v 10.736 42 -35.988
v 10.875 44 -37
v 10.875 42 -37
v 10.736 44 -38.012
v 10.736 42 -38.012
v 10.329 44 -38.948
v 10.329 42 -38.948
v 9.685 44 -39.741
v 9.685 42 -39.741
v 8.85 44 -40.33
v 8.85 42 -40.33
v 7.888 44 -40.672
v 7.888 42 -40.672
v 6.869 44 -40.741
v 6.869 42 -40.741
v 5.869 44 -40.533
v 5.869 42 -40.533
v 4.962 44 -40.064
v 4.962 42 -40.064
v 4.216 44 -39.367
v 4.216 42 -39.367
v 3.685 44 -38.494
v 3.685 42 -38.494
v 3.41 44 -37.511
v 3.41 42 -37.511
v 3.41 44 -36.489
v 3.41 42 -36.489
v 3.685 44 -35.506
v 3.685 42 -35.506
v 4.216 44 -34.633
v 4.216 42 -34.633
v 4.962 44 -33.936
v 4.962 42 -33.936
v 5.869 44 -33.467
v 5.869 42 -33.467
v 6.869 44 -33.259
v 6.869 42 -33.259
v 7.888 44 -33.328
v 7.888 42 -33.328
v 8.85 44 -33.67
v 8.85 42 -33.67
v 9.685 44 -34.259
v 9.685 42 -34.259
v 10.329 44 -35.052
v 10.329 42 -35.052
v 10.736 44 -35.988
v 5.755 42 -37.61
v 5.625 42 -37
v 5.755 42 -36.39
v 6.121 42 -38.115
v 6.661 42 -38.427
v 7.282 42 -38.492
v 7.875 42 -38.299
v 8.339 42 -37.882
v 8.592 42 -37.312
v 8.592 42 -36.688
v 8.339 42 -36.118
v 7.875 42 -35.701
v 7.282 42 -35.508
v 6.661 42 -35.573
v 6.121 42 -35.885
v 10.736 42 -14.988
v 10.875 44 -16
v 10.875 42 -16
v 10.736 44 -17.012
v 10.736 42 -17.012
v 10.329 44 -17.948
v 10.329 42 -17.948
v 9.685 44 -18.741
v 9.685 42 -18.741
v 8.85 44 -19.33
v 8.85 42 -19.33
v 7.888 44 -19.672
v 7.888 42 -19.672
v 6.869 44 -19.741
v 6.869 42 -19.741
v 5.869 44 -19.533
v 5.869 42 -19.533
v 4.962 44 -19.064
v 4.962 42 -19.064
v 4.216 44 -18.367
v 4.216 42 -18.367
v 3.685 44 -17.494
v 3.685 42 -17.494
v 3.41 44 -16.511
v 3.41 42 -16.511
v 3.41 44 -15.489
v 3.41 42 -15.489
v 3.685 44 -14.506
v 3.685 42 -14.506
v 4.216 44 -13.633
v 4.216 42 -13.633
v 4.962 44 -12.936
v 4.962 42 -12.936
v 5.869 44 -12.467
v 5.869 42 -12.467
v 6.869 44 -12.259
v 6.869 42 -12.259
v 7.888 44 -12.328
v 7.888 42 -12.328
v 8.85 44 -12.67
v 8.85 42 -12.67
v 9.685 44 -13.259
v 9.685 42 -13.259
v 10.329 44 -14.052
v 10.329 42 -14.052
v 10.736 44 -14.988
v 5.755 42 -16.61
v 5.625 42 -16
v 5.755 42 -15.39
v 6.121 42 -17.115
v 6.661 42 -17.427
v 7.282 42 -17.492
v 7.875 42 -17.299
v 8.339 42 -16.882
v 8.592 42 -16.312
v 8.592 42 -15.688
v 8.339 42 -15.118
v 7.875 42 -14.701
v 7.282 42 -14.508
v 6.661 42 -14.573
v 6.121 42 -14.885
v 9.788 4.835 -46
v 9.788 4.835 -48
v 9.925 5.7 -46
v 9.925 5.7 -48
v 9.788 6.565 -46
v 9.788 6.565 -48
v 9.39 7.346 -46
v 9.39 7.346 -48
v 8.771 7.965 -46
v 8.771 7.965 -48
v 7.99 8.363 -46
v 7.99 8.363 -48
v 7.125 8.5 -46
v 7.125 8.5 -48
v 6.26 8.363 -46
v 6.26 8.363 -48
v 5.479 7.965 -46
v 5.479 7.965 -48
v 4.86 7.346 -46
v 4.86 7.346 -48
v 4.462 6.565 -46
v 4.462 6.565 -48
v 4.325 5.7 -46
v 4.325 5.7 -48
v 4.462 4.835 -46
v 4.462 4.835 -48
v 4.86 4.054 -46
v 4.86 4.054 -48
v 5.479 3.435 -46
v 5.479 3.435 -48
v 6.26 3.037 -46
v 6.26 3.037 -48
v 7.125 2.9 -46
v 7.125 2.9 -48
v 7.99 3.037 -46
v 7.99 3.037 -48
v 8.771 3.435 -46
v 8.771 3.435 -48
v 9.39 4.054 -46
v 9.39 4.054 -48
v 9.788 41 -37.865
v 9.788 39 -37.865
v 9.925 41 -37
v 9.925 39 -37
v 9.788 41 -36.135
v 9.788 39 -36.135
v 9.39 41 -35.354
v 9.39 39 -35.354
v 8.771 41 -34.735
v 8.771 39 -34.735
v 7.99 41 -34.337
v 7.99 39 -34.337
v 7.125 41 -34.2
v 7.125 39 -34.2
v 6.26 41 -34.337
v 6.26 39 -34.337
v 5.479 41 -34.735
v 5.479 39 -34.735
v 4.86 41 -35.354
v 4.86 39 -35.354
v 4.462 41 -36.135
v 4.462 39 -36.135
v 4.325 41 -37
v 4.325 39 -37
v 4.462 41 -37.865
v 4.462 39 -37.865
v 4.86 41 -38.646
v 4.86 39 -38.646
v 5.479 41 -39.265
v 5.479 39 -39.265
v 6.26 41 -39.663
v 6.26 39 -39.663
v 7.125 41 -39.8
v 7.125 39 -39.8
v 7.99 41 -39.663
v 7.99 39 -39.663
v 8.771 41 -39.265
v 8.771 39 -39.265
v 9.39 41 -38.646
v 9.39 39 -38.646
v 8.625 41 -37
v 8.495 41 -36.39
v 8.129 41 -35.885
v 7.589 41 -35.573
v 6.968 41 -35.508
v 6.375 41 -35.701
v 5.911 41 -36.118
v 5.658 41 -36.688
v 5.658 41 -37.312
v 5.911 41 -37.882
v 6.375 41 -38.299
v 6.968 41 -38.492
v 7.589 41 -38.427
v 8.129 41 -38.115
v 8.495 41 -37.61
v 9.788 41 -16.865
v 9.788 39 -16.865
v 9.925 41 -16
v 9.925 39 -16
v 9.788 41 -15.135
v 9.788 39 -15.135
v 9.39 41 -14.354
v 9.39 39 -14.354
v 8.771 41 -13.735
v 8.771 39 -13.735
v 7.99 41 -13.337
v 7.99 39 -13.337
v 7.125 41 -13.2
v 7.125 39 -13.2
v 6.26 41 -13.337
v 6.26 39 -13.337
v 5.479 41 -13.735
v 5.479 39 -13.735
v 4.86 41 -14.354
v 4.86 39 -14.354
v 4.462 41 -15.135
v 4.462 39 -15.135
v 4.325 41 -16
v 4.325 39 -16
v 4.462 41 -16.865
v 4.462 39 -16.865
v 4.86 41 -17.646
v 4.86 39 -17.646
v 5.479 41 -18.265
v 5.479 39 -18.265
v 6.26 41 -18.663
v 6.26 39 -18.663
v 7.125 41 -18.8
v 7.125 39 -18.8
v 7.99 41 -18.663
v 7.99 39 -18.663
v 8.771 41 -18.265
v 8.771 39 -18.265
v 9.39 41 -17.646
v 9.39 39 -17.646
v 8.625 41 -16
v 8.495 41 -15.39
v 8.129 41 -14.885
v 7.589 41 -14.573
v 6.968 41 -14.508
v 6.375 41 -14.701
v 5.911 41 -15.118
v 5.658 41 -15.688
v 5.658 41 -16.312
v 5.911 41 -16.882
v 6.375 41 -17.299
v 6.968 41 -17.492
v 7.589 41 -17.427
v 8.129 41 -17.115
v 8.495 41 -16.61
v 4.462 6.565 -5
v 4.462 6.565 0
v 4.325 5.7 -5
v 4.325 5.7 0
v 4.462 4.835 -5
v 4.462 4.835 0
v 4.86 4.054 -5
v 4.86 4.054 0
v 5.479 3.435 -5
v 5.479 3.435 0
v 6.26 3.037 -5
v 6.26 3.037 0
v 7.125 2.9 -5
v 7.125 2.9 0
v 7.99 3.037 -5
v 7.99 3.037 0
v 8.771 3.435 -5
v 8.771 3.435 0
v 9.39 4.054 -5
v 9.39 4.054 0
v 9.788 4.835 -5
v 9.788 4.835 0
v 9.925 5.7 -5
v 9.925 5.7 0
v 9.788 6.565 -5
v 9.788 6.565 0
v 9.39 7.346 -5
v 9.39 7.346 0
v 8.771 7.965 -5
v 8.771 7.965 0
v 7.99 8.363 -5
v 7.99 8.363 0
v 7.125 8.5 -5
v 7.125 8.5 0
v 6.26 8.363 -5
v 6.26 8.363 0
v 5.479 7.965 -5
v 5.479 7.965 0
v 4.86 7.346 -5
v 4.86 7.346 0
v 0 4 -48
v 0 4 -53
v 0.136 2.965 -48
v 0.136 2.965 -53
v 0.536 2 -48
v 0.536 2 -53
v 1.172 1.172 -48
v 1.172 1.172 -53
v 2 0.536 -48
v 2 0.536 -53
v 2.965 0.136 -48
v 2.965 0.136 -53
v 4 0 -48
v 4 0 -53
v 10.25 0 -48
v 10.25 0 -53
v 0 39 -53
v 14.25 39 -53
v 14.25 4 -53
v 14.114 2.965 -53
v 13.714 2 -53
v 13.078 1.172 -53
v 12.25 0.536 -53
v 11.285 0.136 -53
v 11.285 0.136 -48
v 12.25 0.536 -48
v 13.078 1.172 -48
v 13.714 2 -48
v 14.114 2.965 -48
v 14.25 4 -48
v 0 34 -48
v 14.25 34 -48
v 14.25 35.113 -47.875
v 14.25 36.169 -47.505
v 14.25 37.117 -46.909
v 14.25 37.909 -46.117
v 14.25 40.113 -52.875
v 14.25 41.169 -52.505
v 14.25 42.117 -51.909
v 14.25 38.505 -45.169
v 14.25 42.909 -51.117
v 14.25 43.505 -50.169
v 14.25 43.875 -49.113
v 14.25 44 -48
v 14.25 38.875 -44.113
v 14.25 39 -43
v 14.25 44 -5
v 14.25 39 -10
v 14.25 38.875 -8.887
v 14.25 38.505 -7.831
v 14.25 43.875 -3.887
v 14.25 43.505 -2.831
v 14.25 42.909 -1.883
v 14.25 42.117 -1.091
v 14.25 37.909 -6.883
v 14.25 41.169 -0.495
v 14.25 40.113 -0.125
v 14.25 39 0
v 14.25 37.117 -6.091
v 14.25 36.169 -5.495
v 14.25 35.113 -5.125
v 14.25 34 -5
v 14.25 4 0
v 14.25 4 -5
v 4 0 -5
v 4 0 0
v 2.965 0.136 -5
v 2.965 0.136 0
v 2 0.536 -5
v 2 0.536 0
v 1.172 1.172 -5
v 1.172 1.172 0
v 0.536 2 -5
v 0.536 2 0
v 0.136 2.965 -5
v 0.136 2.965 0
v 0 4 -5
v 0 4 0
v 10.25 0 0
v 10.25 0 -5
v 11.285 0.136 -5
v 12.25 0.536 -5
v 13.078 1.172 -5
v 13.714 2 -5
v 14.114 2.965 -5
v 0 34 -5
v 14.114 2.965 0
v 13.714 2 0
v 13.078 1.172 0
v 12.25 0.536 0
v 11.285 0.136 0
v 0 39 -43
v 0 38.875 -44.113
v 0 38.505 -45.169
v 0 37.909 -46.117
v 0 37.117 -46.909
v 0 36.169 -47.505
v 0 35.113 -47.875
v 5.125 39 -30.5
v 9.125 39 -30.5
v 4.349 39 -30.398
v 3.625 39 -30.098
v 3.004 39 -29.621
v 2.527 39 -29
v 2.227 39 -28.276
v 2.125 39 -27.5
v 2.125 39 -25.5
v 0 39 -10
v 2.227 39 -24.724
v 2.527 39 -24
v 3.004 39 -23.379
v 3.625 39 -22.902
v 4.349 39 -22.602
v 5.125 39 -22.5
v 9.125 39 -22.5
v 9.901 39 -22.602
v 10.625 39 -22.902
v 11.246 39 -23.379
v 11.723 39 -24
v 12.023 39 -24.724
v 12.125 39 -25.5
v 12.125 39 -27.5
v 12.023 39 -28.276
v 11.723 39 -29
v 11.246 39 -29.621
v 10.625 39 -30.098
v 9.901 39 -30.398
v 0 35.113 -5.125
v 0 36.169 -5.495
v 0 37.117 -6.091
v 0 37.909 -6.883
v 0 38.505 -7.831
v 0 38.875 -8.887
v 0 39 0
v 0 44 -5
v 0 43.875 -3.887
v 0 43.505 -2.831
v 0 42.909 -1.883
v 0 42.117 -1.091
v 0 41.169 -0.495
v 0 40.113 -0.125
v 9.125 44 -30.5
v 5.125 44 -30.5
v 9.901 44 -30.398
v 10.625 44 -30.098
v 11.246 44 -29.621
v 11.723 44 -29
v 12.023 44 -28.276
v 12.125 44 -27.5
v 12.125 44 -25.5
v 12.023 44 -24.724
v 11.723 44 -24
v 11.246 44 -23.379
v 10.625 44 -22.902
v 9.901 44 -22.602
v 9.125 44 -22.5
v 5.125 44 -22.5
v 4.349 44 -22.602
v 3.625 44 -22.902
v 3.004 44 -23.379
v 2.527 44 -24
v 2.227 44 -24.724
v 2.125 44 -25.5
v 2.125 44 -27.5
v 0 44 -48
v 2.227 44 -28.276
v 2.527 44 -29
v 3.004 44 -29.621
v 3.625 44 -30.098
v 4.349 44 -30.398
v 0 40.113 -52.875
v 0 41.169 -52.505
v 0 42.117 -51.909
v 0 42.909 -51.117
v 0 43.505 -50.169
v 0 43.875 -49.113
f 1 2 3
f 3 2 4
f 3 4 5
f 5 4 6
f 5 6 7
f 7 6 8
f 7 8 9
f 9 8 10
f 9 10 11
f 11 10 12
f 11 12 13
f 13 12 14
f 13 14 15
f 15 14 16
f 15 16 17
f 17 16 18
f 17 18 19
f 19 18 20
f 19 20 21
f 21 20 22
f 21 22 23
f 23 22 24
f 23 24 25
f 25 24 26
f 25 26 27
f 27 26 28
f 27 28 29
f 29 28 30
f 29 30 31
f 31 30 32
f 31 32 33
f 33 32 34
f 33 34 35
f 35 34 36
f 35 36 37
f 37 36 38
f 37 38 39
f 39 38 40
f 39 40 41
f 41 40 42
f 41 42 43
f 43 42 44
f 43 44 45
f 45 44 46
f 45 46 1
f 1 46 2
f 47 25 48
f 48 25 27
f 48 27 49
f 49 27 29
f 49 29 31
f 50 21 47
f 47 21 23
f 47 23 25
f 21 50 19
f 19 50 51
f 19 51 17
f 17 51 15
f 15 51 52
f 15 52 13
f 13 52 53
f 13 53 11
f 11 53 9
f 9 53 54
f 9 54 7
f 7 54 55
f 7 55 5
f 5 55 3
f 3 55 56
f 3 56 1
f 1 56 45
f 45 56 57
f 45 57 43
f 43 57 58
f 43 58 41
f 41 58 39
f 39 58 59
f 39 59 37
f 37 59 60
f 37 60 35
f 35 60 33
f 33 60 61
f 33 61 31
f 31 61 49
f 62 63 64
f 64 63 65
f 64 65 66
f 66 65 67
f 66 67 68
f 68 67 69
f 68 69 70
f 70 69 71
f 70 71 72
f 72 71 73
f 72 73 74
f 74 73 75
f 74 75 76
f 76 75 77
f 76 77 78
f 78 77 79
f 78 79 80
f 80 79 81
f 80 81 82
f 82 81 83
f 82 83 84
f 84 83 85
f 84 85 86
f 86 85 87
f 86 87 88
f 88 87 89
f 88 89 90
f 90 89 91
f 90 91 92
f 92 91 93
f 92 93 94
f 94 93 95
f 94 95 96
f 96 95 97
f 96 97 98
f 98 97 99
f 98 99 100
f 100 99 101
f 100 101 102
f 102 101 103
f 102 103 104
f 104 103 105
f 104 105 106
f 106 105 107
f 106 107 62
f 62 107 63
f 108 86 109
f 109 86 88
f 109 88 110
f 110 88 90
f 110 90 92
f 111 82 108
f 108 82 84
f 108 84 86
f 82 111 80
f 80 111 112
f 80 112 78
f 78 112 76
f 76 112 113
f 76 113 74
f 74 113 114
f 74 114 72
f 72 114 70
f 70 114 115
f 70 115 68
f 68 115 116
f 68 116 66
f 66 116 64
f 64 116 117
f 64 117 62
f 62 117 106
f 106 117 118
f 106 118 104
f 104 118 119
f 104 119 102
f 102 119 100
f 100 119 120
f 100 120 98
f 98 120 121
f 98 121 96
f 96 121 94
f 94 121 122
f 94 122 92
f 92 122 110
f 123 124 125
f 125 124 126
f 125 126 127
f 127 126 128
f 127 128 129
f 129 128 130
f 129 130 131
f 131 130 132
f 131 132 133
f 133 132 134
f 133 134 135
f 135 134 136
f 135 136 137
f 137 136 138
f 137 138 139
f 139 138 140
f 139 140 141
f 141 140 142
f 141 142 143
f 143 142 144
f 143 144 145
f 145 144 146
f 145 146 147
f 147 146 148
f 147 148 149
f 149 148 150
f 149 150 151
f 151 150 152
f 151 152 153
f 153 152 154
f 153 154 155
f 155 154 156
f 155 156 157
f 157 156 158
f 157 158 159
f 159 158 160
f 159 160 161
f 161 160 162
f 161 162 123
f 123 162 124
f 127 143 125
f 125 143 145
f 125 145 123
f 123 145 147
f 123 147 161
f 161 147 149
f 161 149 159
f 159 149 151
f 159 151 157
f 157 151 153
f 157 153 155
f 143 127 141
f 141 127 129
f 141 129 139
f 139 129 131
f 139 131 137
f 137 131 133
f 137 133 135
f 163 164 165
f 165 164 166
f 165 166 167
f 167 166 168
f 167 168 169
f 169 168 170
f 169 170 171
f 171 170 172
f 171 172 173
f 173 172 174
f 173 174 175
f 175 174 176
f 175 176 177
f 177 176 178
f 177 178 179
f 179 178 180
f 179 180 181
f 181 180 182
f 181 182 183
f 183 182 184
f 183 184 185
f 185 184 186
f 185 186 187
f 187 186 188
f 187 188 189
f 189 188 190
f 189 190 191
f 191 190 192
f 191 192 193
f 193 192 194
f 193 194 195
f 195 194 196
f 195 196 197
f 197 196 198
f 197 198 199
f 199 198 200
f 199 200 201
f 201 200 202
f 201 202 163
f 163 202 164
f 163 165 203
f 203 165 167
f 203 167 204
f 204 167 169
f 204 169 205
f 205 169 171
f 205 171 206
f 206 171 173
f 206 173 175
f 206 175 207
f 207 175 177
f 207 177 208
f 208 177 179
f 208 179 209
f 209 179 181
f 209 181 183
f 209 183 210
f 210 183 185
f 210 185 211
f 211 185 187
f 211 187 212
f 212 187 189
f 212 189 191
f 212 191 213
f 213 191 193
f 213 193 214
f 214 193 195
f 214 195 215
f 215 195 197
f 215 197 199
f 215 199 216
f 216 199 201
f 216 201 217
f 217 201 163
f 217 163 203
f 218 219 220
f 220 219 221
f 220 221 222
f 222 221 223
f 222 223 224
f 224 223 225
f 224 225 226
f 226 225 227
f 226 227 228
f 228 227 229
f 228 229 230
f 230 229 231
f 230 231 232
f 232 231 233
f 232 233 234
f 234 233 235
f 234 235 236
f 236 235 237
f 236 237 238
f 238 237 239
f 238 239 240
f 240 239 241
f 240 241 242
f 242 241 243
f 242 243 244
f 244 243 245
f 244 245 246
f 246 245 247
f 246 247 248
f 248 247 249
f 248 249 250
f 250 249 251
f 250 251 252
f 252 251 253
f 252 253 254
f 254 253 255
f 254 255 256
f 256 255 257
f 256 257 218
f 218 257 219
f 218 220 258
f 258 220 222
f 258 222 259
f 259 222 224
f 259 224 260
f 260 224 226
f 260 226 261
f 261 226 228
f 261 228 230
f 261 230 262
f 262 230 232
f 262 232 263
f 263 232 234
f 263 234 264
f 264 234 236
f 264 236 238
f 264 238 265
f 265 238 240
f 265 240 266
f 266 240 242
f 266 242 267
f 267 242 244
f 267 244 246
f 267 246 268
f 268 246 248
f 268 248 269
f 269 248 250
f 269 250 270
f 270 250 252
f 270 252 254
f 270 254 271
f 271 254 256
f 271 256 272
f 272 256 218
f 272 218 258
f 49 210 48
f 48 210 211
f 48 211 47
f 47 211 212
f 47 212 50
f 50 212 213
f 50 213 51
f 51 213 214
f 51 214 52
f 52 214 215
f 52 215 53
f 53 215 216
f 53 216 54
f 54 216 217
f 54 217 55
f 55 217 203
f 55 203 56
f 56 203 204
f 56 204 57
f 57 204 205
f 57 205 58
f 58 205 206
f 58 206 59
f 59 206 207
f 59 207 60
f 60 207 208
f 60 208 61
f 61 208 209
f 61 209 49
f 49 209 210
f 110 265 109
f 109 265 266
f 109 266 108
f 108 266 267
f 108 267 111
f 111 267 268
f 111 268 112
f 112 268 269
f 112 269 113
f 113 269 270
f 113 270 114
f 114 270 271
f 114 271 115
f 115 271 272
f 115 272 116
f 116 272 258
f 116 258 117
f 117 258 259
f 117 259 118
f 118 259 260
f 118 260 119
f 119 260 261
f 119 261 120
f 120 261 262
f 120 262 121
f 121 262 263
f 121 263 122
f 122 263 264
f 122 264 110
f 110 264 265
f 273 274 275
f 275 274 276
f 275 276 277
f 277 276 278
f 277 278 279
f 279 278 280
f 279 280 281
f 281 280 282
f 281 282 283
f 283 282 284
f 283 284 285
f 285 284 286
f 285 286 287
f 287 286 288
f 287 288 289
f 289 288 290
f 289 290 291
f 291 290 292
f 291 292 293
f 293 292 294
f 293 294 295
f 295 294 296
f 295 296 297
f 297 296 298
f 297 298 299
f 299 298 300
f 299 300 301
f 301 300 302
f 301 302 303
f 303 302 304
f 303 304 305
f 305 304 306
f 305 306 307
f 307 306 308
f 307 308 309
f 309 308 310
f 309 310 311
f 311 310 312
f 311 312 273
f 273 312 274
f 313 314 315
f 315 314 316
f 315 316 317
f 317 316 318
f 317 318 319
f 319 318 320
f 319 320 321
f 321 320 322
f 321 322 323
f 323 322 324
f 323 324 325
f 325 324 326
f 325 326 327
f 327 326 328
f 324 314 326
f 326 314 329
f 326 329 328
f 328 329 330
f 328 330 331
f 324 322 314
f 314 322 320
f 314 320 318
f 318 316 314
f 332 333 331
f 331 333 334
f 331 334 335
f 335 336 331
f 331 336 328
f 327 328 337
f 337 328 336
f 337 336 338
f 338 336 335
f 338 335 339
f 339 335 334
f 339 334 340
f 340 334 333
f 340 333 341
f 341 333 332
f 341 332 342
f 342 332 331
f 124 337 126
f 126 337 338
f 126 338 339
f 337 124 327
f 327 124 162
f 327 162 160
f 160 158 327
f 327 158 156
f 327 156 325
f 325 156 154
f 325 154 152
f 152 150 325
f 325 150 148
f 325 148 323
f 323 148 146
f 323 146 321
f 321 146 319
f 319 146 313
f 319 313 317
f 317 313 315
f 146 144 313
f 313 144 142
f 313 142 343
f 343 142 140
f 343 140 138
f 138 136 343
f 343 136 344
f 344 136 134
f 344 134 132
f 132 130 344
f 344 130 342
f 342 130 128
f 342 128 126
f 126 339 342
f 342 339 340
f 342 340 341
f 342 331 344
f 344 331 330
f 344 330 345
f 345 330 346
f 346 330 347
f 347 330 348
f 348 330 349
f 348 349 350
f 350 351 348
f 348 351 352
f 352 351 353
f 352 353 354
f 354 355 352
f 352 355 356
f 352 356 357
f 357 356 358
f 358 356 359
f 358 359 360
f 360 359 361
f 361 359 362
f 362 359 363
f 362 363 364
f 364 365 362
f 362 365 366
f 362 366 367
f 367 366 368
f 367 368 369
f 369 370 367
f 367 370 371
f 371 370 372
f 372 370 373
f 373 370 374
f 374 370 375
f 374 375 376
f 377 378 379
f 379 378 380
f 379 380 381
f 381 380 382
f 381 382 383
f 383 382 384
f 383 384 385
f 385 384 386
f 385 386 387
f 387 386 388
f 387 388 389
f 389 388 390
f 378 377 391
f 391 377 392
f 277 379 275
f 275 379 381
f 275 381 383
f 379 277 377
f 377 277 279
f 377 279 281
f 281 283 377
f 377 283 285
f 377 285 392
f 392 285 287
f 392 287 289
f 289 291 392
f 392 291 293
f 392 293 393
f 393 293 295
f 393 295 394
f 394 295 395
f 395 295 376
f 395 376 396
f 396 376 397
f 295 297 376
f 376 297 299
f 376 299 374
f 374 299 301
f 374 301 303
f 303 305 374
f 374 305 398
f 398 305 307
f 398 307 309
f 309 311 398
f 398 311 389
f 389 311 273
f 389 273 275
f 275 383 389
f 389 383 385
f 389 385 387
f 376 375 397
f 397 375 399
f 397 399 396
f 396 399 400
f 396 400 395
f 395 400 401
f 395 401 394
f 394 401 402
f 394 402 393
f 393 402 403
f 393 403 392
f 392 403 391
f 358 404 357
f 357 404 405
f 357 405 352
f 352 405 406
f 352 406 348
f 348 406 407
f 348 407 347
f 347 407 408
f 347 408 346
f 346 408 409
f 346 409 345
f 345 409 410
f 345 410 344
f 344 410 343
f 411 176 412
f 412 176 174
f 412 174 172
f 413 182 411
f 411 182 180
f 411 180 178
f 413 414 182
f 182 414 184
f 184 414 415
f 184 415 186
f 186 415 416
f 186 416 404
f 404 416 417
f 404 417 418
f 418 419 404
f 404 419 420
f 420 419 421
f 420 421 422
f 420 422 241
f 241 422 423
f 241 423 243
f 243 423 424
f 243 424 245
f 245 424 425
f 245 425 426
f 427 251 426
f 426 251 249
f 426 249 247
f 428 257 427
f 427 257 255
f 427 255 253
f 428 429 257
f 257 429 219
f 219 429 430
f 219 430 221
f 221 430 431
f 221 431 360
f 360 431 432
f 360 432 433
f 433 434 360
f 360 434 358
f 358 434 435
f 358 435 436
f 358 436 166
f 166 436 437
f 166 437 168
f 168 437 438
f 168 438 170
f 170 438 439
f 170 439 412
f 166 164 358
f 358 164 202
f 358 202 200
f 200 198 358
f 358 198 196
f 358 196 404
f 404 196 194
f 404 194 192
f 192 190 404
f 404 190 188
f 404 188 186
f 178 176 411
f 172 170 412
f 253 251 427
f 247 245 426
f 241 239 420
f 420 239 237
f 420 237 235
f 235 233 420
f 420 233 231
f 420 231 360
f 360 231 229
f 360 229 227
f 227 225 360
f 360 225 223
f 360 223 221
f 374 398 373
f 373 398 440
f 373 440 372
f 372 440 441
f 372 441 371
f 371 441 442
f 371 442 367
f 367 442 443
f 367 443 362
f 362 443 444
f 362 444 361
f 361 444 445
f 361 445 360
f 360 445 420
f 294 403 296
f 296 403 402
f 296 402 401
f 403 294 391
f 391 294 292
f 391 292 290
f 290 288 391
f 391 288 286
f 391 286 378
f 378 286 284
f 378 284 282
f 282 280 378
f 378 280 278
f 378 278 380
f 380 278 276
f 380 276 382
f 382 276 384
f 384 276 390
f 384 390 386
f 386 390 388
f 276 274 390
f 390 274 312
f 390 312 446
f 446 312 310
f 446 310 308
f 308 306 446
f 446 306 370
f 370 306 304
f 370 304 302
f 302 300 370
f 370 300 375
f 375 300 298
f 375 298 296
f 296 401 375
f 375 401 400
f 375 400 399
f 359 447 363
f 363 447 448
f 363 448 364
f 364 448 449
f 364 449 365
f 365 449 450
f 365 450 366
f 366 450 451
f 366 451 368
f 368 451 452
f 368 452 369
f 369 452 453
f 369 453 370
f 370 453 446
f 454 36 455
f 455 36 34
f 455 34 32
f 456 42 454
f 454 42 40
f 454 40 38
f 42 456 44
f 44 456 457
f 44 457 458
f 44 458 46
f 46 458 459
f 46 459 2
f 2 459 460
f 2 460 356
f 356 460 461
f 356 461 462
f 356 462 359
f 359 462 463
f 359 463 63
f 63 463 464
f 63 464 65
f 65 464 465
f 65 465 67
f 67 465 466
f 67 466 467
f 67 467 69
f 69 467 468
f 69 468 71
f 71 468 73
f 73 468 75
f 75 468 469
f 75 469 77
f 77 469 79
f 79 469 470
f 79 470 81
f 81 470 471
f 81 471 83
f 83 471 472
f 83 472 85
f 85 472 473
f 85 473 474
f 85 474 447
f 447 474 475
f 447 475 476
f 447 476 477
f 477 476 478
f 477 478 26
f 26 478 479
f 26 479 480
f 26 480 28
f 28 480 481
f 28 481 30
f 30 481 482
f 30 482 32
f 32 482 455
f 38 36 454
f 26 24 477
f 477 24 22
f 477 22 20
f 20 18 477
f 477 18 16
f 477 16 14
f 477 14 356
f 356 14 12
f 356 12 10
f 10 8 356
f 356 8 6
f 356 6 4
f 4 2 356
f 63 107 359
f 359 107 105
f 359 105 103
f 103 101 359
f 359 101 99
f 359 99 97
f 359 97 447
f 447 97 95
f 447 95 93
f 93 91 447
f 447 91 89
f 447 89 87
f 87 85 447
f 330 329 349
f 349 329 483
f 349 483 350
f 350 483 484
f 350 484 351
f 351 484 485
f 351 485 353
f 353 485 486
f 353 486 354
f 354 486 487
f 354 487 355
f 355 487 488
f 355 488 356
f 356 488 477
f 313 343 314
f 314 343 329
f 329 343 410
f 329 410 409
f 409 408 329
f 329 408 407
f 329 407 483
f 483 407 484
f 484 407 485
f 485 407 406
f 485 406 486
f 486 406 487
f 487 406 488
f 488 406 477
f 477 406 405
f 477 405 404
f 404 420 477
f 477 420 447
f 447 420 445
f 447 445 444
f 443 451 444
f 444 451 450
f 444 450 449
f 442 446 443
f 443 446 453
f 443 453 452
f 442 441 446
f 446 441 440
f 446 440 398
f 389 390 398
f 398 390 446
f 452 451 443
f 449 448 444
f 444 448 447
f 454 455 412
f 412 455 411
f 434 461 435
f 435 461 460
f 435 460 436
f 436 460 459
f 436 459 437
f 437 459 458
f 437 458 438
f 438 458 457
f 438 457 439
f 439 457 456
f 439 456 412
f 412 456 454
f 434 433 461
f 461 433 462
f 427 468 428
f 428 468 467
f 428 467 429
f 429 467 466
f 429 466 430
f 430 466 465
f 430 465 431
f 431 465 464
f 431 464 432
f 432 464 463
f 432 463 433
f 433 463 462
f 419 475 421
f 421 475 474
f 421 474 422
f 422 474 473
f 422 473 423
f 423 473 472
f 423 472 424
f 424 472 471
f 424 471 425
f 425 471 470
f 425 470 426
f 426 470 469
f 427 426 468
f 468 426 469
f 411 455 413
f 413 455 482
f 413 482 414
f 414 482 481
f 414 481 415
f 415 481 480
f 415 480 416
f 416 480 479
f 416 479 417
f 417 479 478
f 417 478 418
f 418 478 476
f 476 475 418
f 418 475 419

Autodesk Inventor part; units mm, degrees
ref_plane "YZ Plane" through (0, 0, 0) normal (1, 0, 0) x (0, 1, 0)
ref_plane "XZ Plane" through (0, 0, 0) normal (0, 1, 0) x (-1, 0, 0)
ref_plane "XY Plane" through (0, 0, 0) normal (0, 0, 1) x (1, 0, 0)
sketch "Sketch2" plane through (0, 0, 0) normal (1, 0, 0) x (0, 1, 0)
  line L0 (0, 0) -> (39, 0)
  line L1 (44, -5) -> (44, -5)
  line L2 (34, -5) -> (0, -5)
  line L3 (0, -5) -> (0, 0)
  line L4 (39, -10) -> (39, -43)
  line L5 (44, -48) -> (44, -5)
  line L6 (0, -53) -> (0, -48)
  line L7 (39, -53) -> (0, -53)
  line L8 (0, -53) -> (0, -48)
  line L9 (0, -48) -> (34, -48)
  arc A0 (44, -5) -> (39, 0) centre (39, -5) ccw
  arc A1 (34, -48) -> (39, -43) centre (34, -43) ccw
  arc A2 (39, -10) -> (34, -5) centre (34, -10) ccw
  arc A3 (39, -53) -> (44, -48) centre (39, -48) ccw
  point P0 (44, 0)
  point P1 (0, -2.5)
  point P2 (0, -53)
  dimension "d12" = 44
  dimension "d14" = 5
  dimension "d17" = 5
  dimension "d18" = 39
  dimension "d19" = 5
  dimension "d42" = 43
extrude "Extrusion2" add sketch "Sketch2" along normal blind 14.25
fillet "Fillet1" radius 4 4 edges at (14.25, 0, -2.5) (0, 0, -2.5) (14.25, 0, -50.5) (0, 0, -50.5)
sketch "Sketch3" plane through (0, 39, 0) normal (0, 0, 1) x (1, 0, 0)
  circle A0 centre (7.125, -33.3) radius 2.8
  line L0 (0, 0) -> (0, -35) projected
  line L1 (4, -39) -> (10.25, -39) projected
  point P0 (0, -39)
  point P1 (7.125, -39)
  dimension "d23" = 5.6
  dimension "d24" = 7.125
  dimension "d25" = 5.7
extrude "Extrusion3" cut sketch "Sketch3" against normal blind 11.4
sketch "Sketch7" plane through (0, 39, -43) normal (0, -1, 0) x (1, 0, 0)
  circle A0 centre (7.125, 27) radius 1.5
  circle A1 centre (7.125, 6) radius 1.5
  line L0 (0, 33) -> (0, 0) projected
  line L1 (14.25, 33) -> (14.25, 0) projected
  line L2 (0, 33) -> (14.25, 33) projected
  line L3 (0, 0) -> (14.25, 0) projected
  circle A2 centre (7.125, 27) radius 2.8
  circle A3 centre (7.125, 6) radius 2.8
  point P0 (0, 43)
  dimension "d30" = 3
  dimension "d31" = 3
  dimension "d32" = 7.125
  dimension "d33" = 7.125
  dimension "d34" = 6
  dimension "d35" = 6
  dimension "d36" = 5.6
  dimension "d37" = 5.6
extrude "Extrusion5" cut sketch "Sketch7" against normal blind 8 contours A0 | A1
extrude "Extrusion6" cut sketch "Sketch7" against normal blind 2 contours A2 | A3
sketch "Sketch8" plane through (0, 34, -48) normal (0, 0, 1) x (1, 0, 0)
  circle A0 centre (7.125, -28.3) radius 2.8 projected
  circle A1 centre (7.125, -28.3) radius 2.8
  point P0 (0, -34)
extrude "Extrusion7" add sketch "Sketch8" along normal blind 2
sketch "Sketch9" plane through (0, 44, -5) normal (0, 1, 0) x (1, 0, 0)
  circle A0 centre (7.125, 11) radius 1.5 projected
  circle A1 centre (7.125, 11) radius 3.75
  line L0 (0, 43) -> (0, 0) projected
  line L1 (0, 21.5) -> (1.5875, 21.5)
  circle A2 centre (7.125, 32) radius 3.75
  point P0 (0, -5)
  dimension "d46" = 7.5
extrude "Extrusion8" cut sketch "Sketch9" against normal blind 2 contours A0 | A1 | A2
sketch "Sketch10" plane through (0, 44, -5) normal (0, 1, 0) x (1, 0, 0)
  line L0 (2.125, 17.5) -> (12.125, 17.5)
  line L1 (12.125, 17.5) -> (12.125, 25.5)
  line L2 (12.125, 25.5) -> (2.125, 25.5)
  line L3 (2.125, 25.5) -> (2.125, 17.5)
  line L4 (0, 43) -> (0, 0) projected
  line L5 (14.25, 43) -> (14.25, 0) projected
  line L6 (0, 0) -> (14.25, 0) projected
  point P0 (0, -5)
  point P1 (0, 21.5)
  point P2 (14.25, 21.5)
  dimension "d49" = 10
  dimension "d50" = 8
  dimension "d51" = 2.125
  dimension "d52" = 2.125
  dimension "d53" = 17.5
extrude "Extrusion9" cut sketch "Sketch10" against normal blind 50
fillet "Fillet2" radius 3 4 edges at (2.125, 41.5, -22.5) (2.125, 41.5, -30.5) (12.125, 41.5, -22.5) (12.125, 41.5, -30.5)
properties part number "ruka_part spodni"
